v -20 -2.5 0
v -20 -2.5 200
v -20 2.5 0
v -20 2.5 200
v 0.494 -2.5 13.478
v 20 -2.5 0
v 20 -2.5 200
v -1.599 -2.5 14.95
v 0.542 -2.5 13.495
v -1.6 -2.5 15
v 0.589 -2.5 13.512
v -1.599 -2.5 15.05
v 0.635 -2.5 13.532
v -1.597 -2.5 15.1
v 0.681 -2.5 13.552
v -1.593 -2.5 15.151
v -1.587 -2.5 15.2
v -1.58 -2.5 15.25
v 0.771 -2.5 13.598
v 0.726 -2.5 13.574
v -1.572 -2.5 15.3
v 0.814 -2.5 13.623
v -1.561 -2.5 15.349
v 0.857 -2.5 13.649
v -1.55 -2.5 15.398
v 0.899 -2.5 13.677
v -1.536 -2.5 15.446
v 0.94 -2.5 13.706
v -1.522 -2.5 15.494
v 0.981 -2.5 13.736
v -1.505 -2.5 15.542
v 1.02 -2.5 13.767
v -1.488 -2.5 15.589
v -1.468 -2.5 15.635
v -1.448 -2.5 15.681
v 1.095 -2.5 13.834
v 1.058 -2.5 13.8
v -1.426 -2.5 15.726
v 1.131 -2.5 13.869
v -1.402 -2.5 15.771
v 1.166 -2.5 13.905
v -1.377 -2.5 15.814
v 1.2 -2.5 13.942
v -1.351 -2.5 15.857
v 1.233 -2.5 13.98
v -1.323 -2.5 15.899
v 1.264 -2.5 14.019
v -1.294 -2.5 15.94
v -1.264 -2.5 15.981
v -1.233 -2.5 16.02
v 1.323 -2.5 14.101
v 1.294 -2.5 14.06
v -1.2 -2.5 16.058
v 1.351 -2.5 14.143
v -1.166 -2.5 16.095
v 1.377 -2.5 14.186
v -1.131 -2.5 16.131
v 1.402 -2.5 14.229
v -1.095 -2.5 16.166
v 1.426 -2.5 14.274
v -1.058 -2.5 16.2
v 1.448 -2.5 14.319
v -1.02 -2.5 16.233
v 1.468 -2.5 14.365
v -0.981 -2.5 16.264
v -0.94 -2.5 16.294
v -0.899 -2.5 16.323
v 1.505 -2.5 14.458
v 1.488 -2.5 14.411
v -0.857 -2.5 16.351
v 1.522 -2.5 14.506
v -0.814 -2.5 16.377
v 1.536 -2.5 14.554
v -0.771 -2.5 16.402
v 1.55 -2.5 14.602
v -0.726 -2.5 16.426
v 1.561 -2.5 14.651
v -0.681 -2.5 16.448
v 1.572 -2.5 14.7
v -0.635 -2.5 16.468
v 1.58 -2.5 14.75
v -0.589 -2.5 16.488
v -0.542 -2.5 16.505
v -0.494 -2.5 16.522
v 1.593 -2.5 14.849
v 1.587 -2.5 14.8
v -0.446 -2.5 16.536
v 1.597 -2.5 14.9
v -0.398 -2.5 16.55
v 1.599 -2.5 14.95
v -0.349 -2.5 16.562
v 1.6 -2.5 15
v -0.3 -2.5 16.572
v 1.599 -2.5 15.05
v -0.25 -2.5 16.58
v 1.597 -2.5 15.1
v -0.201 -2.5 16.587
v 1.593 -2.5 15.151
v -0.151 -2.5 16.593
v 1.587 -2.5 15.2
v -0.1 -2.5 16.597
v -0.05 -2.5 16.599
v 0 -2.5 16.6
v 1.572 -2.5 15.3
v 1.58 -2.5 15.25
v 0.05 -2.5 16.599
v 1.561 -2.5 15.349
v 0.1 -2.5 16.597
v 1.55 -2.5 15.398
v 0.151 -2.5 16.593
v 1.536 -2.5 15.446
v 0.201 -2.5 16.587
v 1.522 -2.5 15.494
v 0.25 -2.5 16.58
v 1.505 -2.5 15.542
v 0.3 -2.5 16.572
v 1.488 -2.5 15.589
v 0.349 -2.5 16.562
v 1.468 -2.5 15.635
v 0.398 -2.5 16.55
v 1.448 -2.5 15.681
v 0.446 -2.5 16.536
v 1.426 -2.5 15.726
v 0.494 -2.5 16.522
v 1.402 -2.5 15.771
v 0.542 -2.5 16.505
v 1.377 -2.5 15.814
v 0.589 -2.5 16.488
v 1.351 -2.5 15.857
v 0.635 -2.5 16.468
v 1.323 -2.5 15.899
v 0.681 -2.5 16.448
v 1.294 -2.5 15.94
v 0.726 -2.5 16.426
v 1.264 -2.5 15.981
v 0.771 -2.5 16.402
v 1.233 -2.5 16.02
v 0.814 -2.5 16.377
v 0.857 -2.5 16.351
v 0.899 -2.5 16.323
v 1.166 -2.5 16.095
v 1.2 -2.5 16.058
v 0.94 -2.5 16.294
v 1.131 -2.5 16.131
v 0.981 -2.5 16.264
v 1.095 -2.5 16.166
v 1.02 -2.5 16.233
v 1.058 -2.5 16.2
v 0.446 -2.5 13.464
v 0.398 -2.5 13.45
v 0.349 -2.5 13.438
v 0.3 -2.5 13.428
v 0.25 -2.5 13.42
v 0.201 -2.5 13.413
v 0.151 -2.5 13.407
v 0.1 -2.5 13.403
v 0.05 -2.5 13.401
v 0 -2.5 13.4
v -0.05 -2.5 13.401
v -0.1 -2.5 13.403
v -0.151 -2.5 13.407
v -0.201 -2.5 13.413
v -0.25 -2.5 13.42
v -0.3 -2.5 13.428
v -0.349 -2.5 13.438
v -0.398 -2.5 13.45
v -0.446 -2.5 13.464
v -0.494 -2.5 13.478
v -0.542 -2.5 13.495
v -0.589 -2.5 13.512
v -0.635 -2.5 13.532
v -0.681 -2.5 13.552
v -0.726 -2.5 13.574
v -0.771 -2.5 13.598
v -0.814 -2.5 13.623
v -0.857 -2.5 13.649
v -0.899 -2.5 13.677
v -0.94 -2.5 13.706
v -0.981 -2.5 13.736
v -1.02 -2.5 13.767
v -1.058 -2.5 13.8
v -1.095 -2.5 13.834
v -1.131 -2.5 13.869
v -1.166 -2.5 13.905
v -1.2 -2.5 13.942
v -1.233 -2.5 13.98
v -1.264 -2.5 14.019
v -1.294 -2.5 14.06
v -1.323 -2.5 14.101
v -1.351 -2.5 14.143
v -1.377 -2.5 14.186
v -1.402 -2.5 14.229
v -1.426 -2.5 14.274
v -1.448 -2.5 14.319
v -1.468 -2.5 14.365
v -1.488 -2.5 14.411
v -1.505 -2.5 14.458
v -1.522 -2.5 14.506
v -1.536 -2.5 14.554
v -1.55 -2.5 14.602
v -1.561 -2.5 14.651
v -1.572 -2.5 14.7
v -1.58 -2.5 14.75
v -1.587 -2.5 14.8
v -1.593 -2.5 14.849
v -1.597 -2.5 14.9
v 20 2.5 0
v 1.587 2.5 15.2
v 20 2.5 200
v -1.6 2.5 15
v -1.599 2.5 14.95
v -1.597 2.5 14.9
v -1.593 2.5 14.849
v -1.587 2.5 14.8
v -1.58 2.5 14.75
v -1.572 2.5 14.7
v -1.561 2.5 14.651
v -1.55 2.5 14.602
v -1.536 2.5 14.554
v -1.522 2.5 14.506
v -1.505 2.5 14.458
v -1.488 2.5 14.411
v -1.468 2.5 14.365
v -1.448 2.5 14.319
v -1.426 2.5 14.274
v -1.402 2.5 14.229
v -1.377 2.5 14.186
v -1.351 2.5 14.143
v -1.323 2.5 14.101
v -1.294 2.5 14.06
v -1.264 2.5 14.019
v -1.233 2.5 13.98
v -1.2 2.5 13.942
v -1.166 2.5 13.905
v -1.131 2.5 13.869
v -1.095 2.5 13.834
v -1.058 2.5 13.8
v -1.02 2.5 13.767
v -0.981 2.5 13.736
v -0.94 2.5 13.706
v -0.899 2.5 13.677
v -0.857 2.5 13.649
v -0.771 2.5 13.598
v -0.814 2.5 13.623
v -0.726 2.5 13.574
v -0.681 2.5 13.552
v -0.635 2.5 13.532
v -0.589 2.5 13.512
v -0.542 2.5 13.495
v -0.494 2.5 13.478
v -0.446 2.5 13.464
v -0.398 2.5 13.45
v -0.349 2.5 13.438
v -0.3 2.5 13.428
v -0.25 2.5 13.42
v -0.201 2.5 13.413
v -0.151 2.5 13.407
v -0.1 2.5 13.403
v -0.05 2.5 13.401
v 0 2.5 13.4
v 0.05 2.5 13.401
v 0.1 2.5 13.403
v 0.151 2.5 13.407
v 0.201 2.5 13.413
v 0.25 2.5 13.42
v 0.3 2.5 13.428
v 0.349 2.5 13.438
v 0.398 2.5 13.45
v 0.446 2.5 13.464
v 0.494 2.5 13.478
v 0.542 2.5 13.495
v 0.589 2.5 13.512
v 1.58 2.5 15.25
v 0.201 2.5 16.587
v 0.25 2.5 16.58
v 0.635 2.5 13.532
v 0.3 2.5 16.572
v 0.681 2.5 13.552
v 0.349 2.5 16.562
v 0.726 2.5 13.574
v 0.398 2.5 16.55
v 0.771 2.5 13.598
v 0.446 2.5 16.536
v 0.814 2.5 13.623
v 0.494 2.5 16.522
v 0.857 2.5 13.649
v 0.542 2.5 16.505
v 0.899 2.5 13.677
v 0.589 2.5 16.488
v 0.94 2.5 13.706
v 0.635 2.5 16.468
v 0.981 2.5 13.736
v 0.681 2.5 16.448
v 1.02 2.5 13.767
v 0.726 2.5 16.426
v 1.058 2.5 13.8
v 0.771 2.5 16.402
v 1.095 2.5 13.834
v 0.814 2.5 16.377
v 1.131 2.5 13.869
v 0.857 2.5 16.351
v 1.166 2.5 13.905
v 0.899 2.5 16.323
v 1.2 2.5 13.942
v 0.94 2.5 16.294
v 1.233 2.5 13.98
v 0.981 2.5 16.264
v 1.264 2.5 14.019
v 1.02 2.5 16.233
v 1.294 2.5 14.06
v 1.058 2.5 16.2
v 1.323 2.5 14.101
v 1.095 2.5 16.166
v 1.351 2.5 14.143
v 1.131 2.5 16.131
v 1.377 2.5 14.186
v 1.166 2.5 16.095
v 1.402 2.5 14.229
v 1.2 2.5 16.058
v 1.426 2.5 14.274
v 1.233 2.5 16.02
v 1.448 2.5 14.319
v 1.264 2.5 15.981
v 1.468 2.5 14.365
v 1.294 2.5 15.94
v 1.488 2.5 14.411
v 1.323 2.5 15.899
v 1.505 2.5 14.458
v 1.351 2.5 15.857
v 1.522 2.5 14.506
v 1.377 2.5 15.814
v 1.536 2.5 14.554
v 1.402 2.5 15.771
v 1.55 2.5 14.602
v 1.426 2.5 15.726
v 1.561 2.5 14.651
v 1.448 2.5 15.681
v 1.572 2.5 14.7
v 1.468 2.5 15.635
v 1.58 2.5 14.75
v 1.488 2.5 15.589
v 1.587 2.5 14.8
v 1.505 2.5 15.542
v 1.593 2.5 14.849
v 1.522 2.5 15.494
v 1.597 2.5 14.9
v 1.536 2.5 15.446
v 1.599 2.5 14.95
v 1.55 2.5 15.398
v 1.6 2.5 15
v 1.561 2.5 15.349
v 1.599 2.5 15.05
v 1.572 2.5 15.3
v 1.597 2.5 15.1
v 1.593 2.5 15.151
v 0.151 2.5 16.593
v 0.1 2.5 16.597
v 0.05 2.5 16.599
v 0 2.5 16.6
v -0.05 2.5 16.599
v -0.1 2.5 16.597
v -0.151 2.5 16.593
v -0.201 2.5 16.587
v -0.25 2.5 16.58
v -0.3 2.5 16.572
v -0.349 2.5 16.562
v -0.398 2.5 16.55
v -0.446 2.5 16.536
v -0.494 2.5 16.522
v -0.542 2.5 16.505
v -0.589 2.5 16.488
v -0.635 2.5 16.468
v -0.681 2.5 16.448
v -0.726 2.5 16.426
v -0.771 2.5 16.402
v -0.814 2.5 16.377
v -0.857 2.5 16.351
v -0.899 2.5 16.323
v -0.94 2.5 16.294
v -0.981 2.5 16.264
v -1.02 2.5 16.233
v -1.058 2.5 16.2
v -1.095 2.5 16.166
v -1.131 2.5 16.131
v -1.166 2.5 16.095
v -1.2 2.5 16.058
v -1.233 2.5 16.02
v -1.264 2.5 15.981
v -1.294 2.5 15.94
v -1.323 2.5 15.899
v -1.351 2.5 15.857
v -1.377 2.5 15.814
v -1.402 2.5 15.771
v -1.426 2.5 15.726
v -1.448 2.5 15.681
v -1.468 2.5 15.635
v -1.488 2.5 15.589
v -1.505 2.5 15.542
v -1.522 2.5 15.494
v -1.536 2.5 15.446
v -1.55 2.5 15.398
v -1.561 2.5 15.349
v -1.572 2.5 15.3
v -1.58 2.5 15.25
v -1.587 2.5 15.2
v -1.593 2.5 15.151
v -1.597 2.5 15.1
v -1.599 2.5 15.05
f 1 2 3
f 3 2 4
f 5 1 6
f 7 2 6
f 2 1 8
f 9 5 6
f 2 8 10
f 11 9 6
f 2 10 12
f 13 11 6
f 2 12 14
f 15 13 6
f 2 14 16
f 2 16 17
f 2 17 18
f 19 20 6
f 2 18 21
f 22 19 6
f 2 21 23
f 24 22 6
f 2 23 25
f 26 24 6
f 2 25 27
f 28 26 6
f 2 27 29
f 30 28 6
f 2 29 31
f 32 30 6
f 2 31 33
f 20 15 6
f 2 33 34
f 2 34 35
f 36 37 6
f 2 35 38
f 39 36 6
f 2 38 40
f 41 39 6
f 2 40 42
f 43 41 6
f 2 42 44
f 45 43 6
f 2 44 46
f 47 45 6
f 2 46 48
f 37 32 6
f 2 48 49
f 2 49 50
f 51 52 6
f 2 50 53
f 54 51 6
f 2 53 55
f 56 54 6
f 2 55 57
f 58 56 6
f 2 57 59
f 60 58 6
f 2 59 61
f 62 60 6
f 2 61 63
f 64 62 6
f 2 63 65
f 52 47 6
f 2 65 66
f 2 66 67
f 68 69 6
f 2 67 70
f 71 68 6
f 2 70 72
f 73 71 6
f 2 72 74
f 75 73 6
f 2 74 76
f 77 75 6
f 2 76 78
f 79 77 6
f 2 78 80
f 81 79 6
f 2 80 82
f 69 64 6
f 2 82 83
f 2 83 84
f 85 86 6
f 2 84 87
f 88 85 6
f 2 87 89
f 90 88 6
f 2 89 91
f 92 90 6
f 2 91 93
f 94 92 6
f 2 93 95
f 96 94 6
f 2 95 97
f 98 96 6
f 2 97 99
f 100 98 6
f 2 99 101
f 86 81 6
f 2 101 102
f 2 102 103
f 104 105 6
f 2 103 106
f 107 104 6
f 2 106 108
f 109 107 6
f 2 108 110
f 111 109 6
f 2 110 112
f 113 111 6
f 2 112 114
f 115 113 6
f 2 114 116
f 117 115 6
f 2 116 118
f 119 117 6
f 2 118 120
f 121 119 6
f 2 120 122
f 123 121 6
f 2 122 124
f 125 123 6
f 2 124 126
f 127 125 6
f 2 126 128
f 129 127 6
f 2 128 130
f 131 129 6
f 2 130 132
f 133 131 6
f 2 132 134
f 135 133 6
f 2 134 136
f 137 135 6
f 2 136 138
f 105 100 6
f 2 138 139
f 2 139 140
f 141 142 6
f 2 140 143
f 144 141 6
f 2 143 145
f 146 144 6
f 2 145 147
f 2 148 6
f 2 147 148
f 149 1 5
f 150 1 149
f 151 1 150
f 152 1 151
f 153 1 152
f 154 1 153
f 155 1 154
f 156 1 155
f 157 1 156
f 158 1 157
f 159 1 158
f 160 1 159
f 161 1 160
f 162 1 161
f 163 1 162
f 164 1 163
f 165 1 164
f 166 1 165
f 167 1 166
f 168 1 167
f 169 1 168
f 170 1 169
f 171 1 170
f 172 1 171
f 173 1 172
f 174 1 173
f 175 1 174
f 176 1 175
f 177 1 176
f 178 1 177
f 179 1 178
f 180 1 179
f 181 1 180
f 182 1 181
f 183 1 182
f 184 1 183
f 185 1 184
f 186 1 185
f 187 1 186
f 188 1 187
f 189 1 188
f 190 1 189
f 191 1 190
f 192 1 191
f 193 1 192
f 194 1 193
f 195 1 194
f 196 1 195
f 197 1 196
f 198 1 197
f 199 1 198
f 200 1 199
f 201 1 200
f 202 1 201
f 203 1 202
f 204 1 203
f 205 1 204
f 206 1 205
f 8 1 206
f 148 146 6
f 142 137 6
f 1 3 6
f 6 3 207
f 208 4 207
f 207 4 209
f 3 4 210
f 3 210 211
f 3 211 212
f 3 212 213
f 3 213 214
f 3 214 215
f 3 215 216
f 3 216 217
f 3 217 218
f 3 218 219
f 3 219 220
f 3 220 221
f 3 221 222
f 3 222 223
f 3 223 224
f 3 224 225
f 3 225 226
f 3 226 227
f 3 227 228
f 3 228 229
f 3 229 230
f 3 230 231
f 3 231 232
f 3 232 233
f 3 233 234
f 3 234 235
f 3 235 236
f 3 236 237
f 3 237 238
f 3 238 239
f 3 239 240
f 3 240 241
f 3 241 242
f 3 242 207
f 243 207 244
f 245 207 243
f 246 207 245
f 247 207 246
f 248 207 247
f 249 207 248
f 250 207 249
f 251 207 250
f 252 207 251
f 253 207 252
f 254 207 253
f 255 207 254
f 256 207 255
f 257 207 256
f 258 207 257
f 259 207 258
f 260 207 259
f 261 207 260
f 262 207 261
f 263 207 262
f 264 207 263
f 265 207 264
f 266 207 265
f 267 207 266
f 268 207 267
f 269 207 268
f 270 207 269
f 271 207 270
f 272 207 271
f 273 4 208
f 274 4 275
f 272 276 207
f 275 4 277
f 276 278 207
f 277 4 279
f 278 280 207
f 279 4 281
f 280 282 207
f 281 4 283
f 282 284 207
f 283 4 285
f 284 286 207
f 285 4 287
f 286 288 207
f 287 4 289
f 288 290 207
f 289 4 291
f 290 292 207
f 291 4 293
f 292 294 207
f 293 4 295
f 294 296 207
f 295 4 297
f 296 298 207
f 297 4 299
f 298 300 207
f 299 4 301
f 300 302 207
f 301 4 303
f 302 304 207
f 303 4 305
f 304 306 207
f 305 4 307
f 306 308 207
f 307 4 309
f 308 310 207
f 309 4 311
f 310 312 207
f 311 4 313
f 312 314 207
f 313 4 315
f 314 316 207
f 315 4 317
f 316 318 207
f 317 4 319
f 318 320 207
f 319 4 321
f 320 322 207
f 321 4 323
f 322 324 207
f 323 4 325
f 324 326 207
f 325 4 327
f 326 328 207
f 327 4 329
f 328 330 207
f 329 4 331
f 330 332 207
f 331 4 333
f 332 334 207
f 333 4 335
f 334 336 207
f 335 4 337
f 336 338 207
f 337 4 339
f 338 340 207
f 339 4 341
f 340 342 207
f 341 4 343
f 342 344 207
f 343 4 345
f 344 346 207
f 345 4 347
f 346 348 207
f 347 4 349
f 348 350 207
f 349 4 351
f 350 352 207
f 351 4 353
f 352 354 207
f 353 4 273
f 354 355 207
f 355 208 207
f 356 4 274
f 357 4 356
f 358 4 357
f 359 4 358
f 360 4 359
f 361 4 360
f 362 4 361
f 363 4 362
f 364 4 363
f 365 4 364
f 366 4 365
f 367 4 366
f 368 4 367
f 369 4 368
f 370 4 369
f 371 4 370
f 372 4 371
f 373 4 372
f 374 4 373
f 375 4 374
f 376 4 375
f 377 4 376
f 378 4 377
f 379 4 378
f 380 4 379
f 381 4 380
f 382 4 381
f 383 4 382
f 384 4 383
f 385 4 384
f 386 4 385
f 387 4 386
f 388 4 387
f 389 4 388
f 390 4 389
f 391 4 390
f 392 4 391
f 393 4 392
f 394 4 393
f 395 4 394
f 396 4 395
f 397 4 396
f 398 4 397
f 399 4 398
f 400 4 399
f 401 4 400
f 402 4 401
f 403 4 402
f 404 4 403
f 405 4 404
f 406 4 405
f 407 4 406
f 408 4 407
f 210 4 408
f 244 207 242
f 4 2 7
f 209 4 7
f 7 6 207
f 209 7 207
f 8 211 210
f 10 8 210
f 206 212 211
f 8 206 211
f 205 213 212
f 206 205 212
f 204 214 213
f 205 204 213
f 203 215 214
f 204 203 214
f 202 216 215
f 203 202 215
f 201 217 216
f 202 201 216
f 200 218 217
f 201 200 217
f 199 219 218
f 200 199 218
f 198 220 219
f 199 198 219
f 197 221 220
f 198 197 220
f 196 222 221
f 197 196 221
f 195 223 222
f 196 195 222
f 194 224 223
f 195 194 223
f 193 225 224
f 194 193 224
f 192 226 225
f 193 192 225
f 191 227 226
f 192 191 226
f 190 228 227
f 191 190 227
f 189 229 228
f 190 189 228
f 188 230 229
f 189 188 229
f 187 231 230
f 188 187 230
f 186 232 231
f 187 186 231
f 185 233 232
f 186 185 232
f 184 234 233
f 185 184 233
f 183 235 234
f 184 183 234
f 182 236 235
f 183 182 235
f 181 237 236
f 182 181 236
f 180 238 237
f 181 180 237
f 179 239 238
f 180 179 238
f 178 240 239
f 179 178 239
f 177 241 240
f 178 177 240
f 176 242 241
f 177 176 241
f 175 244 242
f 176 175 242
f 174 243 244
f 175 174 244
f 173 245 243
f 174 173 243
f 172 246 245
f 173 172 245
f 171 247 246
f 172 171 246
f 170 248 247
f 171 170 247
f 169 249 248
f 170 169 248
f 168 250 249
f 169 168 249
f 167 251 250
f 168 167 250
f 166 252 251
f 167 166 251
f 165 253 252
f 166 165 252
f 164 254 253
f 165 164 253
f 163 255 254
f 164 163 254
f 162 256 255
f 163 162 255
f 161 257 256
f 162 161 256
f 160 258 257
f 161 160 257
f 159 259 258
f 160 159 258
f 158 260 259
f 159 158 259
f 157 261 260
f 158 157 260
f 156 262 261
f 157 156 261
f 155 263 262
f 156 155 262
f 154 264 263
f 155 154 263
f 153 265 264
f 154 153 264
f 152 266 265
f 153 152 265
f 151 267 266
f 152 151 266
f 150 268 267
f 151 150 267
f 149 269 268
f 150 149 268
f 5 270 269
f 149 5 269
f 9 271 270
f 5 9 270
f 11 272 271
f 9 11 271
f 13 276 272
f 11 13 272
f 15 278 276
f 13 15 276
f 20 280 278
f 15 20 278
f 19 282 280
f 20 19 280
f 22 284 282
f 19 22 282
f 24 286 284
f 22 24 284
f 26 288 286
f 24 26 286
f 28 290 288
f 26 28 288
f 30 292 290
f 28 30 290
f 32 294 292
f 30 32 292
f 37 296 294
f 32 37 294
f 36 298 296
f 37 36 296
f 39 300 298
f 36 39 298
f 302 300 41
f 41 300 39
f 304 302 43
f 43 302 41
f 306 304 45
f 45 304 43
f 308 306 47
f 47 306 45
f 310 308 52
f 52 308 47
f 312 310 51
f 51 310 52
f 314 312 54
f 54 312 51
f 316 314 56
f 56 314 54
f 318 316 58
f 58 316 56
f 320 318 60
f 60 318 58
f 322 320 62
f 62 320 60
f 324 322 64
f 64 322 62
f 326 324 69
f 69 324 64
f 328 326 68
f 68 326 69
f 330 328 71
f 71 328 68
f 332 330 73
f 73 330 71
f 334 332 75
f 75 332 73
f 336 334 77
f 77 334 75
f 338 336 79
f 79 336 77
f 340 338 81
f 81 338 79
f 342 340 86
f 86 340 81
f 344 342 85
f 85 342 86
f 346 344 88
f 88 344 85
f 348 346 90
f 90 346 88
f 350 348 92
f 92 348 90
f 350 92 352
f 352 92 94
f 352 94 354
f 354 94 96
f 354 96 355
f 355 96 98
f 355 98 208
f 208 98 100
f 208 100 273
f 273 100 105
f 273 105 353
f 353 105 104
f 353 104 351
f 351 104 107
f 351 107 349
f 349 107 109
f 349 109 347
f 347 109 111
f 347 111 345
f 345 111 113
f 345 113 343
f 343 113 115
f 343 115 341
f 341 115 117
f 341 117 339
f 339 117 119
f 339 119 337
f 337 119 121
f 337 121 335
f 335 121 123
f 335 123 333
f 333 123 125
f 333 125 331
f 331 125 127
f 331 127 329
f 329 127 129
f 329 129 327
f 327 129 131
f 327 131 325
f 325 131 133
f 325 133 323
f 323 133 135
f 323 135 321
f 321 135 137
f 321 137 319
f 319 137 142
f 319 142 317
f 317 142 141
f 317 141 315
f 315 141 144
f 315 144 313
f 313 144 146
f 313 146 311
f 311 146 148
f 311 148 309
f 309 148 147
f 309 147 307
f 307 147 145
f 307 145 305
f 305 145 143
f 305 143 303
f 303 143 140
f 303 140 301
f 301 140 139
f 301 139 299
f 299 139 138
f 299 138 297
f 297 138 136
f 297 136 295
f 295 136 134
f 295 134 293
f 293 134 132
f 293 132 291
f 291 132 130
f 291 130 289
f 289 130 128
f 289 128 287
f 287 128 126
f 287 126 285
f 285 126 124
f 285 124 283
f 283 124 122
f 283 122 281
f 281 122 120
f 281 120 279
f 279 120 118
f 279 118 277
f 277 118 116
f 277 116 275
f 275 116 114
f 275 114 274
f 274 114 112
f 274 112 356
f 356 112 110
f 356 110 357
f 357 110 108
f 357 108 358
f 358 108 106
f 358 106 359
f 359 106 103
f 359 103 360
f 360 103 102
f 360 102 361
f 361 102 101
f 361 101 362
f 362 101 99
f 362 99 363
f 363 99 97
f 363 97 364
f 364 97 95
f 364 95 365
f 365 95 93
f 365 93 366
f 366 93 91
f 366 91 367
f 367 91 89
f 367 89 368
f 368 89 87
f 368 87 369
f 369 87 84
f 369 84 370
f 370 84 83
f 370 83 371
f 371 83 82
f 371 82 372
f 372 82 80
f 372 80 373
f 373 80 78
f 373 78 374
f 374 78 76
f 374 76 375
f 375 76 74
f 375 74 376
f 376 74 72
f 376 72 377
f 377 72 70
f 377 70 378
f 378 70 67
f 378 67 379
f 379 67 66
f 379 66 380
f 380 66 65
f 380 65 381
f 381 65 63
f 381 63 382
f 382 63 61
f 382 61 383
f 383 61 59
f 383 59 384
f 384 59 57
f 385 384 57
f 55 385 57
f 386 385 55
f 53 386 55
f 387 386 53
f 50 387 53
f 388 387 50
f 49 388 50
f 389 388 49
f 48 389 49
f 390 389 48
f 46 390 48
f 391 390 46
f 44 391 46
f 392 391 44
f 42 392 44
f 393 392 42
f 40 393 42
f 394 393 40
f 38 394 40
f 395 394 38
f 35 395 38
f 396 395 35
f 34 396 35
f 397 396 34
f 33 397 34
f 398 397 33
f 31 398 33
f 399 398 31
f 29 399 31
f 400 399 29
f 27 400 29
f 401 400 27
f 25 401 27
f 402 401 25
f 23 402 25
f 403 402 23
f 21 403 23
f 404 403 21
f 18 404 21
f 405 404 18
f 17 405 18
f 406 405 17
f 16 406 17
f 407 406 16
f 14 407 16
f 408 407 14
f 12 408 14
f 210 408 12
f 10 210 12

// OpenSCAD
gQuality=200;
gClipDimensions=[40,5,200];


difference()
{

	translate([-gClipDimensions.x,-gClipDimensions.y,0]/2)
	cube(gClipDimensions);

	translate([0,0,15])
	rotate([90,0,0])
	cylinder(r=3.2/2.0,h=200,$fn=gQuality,center=true);
}
